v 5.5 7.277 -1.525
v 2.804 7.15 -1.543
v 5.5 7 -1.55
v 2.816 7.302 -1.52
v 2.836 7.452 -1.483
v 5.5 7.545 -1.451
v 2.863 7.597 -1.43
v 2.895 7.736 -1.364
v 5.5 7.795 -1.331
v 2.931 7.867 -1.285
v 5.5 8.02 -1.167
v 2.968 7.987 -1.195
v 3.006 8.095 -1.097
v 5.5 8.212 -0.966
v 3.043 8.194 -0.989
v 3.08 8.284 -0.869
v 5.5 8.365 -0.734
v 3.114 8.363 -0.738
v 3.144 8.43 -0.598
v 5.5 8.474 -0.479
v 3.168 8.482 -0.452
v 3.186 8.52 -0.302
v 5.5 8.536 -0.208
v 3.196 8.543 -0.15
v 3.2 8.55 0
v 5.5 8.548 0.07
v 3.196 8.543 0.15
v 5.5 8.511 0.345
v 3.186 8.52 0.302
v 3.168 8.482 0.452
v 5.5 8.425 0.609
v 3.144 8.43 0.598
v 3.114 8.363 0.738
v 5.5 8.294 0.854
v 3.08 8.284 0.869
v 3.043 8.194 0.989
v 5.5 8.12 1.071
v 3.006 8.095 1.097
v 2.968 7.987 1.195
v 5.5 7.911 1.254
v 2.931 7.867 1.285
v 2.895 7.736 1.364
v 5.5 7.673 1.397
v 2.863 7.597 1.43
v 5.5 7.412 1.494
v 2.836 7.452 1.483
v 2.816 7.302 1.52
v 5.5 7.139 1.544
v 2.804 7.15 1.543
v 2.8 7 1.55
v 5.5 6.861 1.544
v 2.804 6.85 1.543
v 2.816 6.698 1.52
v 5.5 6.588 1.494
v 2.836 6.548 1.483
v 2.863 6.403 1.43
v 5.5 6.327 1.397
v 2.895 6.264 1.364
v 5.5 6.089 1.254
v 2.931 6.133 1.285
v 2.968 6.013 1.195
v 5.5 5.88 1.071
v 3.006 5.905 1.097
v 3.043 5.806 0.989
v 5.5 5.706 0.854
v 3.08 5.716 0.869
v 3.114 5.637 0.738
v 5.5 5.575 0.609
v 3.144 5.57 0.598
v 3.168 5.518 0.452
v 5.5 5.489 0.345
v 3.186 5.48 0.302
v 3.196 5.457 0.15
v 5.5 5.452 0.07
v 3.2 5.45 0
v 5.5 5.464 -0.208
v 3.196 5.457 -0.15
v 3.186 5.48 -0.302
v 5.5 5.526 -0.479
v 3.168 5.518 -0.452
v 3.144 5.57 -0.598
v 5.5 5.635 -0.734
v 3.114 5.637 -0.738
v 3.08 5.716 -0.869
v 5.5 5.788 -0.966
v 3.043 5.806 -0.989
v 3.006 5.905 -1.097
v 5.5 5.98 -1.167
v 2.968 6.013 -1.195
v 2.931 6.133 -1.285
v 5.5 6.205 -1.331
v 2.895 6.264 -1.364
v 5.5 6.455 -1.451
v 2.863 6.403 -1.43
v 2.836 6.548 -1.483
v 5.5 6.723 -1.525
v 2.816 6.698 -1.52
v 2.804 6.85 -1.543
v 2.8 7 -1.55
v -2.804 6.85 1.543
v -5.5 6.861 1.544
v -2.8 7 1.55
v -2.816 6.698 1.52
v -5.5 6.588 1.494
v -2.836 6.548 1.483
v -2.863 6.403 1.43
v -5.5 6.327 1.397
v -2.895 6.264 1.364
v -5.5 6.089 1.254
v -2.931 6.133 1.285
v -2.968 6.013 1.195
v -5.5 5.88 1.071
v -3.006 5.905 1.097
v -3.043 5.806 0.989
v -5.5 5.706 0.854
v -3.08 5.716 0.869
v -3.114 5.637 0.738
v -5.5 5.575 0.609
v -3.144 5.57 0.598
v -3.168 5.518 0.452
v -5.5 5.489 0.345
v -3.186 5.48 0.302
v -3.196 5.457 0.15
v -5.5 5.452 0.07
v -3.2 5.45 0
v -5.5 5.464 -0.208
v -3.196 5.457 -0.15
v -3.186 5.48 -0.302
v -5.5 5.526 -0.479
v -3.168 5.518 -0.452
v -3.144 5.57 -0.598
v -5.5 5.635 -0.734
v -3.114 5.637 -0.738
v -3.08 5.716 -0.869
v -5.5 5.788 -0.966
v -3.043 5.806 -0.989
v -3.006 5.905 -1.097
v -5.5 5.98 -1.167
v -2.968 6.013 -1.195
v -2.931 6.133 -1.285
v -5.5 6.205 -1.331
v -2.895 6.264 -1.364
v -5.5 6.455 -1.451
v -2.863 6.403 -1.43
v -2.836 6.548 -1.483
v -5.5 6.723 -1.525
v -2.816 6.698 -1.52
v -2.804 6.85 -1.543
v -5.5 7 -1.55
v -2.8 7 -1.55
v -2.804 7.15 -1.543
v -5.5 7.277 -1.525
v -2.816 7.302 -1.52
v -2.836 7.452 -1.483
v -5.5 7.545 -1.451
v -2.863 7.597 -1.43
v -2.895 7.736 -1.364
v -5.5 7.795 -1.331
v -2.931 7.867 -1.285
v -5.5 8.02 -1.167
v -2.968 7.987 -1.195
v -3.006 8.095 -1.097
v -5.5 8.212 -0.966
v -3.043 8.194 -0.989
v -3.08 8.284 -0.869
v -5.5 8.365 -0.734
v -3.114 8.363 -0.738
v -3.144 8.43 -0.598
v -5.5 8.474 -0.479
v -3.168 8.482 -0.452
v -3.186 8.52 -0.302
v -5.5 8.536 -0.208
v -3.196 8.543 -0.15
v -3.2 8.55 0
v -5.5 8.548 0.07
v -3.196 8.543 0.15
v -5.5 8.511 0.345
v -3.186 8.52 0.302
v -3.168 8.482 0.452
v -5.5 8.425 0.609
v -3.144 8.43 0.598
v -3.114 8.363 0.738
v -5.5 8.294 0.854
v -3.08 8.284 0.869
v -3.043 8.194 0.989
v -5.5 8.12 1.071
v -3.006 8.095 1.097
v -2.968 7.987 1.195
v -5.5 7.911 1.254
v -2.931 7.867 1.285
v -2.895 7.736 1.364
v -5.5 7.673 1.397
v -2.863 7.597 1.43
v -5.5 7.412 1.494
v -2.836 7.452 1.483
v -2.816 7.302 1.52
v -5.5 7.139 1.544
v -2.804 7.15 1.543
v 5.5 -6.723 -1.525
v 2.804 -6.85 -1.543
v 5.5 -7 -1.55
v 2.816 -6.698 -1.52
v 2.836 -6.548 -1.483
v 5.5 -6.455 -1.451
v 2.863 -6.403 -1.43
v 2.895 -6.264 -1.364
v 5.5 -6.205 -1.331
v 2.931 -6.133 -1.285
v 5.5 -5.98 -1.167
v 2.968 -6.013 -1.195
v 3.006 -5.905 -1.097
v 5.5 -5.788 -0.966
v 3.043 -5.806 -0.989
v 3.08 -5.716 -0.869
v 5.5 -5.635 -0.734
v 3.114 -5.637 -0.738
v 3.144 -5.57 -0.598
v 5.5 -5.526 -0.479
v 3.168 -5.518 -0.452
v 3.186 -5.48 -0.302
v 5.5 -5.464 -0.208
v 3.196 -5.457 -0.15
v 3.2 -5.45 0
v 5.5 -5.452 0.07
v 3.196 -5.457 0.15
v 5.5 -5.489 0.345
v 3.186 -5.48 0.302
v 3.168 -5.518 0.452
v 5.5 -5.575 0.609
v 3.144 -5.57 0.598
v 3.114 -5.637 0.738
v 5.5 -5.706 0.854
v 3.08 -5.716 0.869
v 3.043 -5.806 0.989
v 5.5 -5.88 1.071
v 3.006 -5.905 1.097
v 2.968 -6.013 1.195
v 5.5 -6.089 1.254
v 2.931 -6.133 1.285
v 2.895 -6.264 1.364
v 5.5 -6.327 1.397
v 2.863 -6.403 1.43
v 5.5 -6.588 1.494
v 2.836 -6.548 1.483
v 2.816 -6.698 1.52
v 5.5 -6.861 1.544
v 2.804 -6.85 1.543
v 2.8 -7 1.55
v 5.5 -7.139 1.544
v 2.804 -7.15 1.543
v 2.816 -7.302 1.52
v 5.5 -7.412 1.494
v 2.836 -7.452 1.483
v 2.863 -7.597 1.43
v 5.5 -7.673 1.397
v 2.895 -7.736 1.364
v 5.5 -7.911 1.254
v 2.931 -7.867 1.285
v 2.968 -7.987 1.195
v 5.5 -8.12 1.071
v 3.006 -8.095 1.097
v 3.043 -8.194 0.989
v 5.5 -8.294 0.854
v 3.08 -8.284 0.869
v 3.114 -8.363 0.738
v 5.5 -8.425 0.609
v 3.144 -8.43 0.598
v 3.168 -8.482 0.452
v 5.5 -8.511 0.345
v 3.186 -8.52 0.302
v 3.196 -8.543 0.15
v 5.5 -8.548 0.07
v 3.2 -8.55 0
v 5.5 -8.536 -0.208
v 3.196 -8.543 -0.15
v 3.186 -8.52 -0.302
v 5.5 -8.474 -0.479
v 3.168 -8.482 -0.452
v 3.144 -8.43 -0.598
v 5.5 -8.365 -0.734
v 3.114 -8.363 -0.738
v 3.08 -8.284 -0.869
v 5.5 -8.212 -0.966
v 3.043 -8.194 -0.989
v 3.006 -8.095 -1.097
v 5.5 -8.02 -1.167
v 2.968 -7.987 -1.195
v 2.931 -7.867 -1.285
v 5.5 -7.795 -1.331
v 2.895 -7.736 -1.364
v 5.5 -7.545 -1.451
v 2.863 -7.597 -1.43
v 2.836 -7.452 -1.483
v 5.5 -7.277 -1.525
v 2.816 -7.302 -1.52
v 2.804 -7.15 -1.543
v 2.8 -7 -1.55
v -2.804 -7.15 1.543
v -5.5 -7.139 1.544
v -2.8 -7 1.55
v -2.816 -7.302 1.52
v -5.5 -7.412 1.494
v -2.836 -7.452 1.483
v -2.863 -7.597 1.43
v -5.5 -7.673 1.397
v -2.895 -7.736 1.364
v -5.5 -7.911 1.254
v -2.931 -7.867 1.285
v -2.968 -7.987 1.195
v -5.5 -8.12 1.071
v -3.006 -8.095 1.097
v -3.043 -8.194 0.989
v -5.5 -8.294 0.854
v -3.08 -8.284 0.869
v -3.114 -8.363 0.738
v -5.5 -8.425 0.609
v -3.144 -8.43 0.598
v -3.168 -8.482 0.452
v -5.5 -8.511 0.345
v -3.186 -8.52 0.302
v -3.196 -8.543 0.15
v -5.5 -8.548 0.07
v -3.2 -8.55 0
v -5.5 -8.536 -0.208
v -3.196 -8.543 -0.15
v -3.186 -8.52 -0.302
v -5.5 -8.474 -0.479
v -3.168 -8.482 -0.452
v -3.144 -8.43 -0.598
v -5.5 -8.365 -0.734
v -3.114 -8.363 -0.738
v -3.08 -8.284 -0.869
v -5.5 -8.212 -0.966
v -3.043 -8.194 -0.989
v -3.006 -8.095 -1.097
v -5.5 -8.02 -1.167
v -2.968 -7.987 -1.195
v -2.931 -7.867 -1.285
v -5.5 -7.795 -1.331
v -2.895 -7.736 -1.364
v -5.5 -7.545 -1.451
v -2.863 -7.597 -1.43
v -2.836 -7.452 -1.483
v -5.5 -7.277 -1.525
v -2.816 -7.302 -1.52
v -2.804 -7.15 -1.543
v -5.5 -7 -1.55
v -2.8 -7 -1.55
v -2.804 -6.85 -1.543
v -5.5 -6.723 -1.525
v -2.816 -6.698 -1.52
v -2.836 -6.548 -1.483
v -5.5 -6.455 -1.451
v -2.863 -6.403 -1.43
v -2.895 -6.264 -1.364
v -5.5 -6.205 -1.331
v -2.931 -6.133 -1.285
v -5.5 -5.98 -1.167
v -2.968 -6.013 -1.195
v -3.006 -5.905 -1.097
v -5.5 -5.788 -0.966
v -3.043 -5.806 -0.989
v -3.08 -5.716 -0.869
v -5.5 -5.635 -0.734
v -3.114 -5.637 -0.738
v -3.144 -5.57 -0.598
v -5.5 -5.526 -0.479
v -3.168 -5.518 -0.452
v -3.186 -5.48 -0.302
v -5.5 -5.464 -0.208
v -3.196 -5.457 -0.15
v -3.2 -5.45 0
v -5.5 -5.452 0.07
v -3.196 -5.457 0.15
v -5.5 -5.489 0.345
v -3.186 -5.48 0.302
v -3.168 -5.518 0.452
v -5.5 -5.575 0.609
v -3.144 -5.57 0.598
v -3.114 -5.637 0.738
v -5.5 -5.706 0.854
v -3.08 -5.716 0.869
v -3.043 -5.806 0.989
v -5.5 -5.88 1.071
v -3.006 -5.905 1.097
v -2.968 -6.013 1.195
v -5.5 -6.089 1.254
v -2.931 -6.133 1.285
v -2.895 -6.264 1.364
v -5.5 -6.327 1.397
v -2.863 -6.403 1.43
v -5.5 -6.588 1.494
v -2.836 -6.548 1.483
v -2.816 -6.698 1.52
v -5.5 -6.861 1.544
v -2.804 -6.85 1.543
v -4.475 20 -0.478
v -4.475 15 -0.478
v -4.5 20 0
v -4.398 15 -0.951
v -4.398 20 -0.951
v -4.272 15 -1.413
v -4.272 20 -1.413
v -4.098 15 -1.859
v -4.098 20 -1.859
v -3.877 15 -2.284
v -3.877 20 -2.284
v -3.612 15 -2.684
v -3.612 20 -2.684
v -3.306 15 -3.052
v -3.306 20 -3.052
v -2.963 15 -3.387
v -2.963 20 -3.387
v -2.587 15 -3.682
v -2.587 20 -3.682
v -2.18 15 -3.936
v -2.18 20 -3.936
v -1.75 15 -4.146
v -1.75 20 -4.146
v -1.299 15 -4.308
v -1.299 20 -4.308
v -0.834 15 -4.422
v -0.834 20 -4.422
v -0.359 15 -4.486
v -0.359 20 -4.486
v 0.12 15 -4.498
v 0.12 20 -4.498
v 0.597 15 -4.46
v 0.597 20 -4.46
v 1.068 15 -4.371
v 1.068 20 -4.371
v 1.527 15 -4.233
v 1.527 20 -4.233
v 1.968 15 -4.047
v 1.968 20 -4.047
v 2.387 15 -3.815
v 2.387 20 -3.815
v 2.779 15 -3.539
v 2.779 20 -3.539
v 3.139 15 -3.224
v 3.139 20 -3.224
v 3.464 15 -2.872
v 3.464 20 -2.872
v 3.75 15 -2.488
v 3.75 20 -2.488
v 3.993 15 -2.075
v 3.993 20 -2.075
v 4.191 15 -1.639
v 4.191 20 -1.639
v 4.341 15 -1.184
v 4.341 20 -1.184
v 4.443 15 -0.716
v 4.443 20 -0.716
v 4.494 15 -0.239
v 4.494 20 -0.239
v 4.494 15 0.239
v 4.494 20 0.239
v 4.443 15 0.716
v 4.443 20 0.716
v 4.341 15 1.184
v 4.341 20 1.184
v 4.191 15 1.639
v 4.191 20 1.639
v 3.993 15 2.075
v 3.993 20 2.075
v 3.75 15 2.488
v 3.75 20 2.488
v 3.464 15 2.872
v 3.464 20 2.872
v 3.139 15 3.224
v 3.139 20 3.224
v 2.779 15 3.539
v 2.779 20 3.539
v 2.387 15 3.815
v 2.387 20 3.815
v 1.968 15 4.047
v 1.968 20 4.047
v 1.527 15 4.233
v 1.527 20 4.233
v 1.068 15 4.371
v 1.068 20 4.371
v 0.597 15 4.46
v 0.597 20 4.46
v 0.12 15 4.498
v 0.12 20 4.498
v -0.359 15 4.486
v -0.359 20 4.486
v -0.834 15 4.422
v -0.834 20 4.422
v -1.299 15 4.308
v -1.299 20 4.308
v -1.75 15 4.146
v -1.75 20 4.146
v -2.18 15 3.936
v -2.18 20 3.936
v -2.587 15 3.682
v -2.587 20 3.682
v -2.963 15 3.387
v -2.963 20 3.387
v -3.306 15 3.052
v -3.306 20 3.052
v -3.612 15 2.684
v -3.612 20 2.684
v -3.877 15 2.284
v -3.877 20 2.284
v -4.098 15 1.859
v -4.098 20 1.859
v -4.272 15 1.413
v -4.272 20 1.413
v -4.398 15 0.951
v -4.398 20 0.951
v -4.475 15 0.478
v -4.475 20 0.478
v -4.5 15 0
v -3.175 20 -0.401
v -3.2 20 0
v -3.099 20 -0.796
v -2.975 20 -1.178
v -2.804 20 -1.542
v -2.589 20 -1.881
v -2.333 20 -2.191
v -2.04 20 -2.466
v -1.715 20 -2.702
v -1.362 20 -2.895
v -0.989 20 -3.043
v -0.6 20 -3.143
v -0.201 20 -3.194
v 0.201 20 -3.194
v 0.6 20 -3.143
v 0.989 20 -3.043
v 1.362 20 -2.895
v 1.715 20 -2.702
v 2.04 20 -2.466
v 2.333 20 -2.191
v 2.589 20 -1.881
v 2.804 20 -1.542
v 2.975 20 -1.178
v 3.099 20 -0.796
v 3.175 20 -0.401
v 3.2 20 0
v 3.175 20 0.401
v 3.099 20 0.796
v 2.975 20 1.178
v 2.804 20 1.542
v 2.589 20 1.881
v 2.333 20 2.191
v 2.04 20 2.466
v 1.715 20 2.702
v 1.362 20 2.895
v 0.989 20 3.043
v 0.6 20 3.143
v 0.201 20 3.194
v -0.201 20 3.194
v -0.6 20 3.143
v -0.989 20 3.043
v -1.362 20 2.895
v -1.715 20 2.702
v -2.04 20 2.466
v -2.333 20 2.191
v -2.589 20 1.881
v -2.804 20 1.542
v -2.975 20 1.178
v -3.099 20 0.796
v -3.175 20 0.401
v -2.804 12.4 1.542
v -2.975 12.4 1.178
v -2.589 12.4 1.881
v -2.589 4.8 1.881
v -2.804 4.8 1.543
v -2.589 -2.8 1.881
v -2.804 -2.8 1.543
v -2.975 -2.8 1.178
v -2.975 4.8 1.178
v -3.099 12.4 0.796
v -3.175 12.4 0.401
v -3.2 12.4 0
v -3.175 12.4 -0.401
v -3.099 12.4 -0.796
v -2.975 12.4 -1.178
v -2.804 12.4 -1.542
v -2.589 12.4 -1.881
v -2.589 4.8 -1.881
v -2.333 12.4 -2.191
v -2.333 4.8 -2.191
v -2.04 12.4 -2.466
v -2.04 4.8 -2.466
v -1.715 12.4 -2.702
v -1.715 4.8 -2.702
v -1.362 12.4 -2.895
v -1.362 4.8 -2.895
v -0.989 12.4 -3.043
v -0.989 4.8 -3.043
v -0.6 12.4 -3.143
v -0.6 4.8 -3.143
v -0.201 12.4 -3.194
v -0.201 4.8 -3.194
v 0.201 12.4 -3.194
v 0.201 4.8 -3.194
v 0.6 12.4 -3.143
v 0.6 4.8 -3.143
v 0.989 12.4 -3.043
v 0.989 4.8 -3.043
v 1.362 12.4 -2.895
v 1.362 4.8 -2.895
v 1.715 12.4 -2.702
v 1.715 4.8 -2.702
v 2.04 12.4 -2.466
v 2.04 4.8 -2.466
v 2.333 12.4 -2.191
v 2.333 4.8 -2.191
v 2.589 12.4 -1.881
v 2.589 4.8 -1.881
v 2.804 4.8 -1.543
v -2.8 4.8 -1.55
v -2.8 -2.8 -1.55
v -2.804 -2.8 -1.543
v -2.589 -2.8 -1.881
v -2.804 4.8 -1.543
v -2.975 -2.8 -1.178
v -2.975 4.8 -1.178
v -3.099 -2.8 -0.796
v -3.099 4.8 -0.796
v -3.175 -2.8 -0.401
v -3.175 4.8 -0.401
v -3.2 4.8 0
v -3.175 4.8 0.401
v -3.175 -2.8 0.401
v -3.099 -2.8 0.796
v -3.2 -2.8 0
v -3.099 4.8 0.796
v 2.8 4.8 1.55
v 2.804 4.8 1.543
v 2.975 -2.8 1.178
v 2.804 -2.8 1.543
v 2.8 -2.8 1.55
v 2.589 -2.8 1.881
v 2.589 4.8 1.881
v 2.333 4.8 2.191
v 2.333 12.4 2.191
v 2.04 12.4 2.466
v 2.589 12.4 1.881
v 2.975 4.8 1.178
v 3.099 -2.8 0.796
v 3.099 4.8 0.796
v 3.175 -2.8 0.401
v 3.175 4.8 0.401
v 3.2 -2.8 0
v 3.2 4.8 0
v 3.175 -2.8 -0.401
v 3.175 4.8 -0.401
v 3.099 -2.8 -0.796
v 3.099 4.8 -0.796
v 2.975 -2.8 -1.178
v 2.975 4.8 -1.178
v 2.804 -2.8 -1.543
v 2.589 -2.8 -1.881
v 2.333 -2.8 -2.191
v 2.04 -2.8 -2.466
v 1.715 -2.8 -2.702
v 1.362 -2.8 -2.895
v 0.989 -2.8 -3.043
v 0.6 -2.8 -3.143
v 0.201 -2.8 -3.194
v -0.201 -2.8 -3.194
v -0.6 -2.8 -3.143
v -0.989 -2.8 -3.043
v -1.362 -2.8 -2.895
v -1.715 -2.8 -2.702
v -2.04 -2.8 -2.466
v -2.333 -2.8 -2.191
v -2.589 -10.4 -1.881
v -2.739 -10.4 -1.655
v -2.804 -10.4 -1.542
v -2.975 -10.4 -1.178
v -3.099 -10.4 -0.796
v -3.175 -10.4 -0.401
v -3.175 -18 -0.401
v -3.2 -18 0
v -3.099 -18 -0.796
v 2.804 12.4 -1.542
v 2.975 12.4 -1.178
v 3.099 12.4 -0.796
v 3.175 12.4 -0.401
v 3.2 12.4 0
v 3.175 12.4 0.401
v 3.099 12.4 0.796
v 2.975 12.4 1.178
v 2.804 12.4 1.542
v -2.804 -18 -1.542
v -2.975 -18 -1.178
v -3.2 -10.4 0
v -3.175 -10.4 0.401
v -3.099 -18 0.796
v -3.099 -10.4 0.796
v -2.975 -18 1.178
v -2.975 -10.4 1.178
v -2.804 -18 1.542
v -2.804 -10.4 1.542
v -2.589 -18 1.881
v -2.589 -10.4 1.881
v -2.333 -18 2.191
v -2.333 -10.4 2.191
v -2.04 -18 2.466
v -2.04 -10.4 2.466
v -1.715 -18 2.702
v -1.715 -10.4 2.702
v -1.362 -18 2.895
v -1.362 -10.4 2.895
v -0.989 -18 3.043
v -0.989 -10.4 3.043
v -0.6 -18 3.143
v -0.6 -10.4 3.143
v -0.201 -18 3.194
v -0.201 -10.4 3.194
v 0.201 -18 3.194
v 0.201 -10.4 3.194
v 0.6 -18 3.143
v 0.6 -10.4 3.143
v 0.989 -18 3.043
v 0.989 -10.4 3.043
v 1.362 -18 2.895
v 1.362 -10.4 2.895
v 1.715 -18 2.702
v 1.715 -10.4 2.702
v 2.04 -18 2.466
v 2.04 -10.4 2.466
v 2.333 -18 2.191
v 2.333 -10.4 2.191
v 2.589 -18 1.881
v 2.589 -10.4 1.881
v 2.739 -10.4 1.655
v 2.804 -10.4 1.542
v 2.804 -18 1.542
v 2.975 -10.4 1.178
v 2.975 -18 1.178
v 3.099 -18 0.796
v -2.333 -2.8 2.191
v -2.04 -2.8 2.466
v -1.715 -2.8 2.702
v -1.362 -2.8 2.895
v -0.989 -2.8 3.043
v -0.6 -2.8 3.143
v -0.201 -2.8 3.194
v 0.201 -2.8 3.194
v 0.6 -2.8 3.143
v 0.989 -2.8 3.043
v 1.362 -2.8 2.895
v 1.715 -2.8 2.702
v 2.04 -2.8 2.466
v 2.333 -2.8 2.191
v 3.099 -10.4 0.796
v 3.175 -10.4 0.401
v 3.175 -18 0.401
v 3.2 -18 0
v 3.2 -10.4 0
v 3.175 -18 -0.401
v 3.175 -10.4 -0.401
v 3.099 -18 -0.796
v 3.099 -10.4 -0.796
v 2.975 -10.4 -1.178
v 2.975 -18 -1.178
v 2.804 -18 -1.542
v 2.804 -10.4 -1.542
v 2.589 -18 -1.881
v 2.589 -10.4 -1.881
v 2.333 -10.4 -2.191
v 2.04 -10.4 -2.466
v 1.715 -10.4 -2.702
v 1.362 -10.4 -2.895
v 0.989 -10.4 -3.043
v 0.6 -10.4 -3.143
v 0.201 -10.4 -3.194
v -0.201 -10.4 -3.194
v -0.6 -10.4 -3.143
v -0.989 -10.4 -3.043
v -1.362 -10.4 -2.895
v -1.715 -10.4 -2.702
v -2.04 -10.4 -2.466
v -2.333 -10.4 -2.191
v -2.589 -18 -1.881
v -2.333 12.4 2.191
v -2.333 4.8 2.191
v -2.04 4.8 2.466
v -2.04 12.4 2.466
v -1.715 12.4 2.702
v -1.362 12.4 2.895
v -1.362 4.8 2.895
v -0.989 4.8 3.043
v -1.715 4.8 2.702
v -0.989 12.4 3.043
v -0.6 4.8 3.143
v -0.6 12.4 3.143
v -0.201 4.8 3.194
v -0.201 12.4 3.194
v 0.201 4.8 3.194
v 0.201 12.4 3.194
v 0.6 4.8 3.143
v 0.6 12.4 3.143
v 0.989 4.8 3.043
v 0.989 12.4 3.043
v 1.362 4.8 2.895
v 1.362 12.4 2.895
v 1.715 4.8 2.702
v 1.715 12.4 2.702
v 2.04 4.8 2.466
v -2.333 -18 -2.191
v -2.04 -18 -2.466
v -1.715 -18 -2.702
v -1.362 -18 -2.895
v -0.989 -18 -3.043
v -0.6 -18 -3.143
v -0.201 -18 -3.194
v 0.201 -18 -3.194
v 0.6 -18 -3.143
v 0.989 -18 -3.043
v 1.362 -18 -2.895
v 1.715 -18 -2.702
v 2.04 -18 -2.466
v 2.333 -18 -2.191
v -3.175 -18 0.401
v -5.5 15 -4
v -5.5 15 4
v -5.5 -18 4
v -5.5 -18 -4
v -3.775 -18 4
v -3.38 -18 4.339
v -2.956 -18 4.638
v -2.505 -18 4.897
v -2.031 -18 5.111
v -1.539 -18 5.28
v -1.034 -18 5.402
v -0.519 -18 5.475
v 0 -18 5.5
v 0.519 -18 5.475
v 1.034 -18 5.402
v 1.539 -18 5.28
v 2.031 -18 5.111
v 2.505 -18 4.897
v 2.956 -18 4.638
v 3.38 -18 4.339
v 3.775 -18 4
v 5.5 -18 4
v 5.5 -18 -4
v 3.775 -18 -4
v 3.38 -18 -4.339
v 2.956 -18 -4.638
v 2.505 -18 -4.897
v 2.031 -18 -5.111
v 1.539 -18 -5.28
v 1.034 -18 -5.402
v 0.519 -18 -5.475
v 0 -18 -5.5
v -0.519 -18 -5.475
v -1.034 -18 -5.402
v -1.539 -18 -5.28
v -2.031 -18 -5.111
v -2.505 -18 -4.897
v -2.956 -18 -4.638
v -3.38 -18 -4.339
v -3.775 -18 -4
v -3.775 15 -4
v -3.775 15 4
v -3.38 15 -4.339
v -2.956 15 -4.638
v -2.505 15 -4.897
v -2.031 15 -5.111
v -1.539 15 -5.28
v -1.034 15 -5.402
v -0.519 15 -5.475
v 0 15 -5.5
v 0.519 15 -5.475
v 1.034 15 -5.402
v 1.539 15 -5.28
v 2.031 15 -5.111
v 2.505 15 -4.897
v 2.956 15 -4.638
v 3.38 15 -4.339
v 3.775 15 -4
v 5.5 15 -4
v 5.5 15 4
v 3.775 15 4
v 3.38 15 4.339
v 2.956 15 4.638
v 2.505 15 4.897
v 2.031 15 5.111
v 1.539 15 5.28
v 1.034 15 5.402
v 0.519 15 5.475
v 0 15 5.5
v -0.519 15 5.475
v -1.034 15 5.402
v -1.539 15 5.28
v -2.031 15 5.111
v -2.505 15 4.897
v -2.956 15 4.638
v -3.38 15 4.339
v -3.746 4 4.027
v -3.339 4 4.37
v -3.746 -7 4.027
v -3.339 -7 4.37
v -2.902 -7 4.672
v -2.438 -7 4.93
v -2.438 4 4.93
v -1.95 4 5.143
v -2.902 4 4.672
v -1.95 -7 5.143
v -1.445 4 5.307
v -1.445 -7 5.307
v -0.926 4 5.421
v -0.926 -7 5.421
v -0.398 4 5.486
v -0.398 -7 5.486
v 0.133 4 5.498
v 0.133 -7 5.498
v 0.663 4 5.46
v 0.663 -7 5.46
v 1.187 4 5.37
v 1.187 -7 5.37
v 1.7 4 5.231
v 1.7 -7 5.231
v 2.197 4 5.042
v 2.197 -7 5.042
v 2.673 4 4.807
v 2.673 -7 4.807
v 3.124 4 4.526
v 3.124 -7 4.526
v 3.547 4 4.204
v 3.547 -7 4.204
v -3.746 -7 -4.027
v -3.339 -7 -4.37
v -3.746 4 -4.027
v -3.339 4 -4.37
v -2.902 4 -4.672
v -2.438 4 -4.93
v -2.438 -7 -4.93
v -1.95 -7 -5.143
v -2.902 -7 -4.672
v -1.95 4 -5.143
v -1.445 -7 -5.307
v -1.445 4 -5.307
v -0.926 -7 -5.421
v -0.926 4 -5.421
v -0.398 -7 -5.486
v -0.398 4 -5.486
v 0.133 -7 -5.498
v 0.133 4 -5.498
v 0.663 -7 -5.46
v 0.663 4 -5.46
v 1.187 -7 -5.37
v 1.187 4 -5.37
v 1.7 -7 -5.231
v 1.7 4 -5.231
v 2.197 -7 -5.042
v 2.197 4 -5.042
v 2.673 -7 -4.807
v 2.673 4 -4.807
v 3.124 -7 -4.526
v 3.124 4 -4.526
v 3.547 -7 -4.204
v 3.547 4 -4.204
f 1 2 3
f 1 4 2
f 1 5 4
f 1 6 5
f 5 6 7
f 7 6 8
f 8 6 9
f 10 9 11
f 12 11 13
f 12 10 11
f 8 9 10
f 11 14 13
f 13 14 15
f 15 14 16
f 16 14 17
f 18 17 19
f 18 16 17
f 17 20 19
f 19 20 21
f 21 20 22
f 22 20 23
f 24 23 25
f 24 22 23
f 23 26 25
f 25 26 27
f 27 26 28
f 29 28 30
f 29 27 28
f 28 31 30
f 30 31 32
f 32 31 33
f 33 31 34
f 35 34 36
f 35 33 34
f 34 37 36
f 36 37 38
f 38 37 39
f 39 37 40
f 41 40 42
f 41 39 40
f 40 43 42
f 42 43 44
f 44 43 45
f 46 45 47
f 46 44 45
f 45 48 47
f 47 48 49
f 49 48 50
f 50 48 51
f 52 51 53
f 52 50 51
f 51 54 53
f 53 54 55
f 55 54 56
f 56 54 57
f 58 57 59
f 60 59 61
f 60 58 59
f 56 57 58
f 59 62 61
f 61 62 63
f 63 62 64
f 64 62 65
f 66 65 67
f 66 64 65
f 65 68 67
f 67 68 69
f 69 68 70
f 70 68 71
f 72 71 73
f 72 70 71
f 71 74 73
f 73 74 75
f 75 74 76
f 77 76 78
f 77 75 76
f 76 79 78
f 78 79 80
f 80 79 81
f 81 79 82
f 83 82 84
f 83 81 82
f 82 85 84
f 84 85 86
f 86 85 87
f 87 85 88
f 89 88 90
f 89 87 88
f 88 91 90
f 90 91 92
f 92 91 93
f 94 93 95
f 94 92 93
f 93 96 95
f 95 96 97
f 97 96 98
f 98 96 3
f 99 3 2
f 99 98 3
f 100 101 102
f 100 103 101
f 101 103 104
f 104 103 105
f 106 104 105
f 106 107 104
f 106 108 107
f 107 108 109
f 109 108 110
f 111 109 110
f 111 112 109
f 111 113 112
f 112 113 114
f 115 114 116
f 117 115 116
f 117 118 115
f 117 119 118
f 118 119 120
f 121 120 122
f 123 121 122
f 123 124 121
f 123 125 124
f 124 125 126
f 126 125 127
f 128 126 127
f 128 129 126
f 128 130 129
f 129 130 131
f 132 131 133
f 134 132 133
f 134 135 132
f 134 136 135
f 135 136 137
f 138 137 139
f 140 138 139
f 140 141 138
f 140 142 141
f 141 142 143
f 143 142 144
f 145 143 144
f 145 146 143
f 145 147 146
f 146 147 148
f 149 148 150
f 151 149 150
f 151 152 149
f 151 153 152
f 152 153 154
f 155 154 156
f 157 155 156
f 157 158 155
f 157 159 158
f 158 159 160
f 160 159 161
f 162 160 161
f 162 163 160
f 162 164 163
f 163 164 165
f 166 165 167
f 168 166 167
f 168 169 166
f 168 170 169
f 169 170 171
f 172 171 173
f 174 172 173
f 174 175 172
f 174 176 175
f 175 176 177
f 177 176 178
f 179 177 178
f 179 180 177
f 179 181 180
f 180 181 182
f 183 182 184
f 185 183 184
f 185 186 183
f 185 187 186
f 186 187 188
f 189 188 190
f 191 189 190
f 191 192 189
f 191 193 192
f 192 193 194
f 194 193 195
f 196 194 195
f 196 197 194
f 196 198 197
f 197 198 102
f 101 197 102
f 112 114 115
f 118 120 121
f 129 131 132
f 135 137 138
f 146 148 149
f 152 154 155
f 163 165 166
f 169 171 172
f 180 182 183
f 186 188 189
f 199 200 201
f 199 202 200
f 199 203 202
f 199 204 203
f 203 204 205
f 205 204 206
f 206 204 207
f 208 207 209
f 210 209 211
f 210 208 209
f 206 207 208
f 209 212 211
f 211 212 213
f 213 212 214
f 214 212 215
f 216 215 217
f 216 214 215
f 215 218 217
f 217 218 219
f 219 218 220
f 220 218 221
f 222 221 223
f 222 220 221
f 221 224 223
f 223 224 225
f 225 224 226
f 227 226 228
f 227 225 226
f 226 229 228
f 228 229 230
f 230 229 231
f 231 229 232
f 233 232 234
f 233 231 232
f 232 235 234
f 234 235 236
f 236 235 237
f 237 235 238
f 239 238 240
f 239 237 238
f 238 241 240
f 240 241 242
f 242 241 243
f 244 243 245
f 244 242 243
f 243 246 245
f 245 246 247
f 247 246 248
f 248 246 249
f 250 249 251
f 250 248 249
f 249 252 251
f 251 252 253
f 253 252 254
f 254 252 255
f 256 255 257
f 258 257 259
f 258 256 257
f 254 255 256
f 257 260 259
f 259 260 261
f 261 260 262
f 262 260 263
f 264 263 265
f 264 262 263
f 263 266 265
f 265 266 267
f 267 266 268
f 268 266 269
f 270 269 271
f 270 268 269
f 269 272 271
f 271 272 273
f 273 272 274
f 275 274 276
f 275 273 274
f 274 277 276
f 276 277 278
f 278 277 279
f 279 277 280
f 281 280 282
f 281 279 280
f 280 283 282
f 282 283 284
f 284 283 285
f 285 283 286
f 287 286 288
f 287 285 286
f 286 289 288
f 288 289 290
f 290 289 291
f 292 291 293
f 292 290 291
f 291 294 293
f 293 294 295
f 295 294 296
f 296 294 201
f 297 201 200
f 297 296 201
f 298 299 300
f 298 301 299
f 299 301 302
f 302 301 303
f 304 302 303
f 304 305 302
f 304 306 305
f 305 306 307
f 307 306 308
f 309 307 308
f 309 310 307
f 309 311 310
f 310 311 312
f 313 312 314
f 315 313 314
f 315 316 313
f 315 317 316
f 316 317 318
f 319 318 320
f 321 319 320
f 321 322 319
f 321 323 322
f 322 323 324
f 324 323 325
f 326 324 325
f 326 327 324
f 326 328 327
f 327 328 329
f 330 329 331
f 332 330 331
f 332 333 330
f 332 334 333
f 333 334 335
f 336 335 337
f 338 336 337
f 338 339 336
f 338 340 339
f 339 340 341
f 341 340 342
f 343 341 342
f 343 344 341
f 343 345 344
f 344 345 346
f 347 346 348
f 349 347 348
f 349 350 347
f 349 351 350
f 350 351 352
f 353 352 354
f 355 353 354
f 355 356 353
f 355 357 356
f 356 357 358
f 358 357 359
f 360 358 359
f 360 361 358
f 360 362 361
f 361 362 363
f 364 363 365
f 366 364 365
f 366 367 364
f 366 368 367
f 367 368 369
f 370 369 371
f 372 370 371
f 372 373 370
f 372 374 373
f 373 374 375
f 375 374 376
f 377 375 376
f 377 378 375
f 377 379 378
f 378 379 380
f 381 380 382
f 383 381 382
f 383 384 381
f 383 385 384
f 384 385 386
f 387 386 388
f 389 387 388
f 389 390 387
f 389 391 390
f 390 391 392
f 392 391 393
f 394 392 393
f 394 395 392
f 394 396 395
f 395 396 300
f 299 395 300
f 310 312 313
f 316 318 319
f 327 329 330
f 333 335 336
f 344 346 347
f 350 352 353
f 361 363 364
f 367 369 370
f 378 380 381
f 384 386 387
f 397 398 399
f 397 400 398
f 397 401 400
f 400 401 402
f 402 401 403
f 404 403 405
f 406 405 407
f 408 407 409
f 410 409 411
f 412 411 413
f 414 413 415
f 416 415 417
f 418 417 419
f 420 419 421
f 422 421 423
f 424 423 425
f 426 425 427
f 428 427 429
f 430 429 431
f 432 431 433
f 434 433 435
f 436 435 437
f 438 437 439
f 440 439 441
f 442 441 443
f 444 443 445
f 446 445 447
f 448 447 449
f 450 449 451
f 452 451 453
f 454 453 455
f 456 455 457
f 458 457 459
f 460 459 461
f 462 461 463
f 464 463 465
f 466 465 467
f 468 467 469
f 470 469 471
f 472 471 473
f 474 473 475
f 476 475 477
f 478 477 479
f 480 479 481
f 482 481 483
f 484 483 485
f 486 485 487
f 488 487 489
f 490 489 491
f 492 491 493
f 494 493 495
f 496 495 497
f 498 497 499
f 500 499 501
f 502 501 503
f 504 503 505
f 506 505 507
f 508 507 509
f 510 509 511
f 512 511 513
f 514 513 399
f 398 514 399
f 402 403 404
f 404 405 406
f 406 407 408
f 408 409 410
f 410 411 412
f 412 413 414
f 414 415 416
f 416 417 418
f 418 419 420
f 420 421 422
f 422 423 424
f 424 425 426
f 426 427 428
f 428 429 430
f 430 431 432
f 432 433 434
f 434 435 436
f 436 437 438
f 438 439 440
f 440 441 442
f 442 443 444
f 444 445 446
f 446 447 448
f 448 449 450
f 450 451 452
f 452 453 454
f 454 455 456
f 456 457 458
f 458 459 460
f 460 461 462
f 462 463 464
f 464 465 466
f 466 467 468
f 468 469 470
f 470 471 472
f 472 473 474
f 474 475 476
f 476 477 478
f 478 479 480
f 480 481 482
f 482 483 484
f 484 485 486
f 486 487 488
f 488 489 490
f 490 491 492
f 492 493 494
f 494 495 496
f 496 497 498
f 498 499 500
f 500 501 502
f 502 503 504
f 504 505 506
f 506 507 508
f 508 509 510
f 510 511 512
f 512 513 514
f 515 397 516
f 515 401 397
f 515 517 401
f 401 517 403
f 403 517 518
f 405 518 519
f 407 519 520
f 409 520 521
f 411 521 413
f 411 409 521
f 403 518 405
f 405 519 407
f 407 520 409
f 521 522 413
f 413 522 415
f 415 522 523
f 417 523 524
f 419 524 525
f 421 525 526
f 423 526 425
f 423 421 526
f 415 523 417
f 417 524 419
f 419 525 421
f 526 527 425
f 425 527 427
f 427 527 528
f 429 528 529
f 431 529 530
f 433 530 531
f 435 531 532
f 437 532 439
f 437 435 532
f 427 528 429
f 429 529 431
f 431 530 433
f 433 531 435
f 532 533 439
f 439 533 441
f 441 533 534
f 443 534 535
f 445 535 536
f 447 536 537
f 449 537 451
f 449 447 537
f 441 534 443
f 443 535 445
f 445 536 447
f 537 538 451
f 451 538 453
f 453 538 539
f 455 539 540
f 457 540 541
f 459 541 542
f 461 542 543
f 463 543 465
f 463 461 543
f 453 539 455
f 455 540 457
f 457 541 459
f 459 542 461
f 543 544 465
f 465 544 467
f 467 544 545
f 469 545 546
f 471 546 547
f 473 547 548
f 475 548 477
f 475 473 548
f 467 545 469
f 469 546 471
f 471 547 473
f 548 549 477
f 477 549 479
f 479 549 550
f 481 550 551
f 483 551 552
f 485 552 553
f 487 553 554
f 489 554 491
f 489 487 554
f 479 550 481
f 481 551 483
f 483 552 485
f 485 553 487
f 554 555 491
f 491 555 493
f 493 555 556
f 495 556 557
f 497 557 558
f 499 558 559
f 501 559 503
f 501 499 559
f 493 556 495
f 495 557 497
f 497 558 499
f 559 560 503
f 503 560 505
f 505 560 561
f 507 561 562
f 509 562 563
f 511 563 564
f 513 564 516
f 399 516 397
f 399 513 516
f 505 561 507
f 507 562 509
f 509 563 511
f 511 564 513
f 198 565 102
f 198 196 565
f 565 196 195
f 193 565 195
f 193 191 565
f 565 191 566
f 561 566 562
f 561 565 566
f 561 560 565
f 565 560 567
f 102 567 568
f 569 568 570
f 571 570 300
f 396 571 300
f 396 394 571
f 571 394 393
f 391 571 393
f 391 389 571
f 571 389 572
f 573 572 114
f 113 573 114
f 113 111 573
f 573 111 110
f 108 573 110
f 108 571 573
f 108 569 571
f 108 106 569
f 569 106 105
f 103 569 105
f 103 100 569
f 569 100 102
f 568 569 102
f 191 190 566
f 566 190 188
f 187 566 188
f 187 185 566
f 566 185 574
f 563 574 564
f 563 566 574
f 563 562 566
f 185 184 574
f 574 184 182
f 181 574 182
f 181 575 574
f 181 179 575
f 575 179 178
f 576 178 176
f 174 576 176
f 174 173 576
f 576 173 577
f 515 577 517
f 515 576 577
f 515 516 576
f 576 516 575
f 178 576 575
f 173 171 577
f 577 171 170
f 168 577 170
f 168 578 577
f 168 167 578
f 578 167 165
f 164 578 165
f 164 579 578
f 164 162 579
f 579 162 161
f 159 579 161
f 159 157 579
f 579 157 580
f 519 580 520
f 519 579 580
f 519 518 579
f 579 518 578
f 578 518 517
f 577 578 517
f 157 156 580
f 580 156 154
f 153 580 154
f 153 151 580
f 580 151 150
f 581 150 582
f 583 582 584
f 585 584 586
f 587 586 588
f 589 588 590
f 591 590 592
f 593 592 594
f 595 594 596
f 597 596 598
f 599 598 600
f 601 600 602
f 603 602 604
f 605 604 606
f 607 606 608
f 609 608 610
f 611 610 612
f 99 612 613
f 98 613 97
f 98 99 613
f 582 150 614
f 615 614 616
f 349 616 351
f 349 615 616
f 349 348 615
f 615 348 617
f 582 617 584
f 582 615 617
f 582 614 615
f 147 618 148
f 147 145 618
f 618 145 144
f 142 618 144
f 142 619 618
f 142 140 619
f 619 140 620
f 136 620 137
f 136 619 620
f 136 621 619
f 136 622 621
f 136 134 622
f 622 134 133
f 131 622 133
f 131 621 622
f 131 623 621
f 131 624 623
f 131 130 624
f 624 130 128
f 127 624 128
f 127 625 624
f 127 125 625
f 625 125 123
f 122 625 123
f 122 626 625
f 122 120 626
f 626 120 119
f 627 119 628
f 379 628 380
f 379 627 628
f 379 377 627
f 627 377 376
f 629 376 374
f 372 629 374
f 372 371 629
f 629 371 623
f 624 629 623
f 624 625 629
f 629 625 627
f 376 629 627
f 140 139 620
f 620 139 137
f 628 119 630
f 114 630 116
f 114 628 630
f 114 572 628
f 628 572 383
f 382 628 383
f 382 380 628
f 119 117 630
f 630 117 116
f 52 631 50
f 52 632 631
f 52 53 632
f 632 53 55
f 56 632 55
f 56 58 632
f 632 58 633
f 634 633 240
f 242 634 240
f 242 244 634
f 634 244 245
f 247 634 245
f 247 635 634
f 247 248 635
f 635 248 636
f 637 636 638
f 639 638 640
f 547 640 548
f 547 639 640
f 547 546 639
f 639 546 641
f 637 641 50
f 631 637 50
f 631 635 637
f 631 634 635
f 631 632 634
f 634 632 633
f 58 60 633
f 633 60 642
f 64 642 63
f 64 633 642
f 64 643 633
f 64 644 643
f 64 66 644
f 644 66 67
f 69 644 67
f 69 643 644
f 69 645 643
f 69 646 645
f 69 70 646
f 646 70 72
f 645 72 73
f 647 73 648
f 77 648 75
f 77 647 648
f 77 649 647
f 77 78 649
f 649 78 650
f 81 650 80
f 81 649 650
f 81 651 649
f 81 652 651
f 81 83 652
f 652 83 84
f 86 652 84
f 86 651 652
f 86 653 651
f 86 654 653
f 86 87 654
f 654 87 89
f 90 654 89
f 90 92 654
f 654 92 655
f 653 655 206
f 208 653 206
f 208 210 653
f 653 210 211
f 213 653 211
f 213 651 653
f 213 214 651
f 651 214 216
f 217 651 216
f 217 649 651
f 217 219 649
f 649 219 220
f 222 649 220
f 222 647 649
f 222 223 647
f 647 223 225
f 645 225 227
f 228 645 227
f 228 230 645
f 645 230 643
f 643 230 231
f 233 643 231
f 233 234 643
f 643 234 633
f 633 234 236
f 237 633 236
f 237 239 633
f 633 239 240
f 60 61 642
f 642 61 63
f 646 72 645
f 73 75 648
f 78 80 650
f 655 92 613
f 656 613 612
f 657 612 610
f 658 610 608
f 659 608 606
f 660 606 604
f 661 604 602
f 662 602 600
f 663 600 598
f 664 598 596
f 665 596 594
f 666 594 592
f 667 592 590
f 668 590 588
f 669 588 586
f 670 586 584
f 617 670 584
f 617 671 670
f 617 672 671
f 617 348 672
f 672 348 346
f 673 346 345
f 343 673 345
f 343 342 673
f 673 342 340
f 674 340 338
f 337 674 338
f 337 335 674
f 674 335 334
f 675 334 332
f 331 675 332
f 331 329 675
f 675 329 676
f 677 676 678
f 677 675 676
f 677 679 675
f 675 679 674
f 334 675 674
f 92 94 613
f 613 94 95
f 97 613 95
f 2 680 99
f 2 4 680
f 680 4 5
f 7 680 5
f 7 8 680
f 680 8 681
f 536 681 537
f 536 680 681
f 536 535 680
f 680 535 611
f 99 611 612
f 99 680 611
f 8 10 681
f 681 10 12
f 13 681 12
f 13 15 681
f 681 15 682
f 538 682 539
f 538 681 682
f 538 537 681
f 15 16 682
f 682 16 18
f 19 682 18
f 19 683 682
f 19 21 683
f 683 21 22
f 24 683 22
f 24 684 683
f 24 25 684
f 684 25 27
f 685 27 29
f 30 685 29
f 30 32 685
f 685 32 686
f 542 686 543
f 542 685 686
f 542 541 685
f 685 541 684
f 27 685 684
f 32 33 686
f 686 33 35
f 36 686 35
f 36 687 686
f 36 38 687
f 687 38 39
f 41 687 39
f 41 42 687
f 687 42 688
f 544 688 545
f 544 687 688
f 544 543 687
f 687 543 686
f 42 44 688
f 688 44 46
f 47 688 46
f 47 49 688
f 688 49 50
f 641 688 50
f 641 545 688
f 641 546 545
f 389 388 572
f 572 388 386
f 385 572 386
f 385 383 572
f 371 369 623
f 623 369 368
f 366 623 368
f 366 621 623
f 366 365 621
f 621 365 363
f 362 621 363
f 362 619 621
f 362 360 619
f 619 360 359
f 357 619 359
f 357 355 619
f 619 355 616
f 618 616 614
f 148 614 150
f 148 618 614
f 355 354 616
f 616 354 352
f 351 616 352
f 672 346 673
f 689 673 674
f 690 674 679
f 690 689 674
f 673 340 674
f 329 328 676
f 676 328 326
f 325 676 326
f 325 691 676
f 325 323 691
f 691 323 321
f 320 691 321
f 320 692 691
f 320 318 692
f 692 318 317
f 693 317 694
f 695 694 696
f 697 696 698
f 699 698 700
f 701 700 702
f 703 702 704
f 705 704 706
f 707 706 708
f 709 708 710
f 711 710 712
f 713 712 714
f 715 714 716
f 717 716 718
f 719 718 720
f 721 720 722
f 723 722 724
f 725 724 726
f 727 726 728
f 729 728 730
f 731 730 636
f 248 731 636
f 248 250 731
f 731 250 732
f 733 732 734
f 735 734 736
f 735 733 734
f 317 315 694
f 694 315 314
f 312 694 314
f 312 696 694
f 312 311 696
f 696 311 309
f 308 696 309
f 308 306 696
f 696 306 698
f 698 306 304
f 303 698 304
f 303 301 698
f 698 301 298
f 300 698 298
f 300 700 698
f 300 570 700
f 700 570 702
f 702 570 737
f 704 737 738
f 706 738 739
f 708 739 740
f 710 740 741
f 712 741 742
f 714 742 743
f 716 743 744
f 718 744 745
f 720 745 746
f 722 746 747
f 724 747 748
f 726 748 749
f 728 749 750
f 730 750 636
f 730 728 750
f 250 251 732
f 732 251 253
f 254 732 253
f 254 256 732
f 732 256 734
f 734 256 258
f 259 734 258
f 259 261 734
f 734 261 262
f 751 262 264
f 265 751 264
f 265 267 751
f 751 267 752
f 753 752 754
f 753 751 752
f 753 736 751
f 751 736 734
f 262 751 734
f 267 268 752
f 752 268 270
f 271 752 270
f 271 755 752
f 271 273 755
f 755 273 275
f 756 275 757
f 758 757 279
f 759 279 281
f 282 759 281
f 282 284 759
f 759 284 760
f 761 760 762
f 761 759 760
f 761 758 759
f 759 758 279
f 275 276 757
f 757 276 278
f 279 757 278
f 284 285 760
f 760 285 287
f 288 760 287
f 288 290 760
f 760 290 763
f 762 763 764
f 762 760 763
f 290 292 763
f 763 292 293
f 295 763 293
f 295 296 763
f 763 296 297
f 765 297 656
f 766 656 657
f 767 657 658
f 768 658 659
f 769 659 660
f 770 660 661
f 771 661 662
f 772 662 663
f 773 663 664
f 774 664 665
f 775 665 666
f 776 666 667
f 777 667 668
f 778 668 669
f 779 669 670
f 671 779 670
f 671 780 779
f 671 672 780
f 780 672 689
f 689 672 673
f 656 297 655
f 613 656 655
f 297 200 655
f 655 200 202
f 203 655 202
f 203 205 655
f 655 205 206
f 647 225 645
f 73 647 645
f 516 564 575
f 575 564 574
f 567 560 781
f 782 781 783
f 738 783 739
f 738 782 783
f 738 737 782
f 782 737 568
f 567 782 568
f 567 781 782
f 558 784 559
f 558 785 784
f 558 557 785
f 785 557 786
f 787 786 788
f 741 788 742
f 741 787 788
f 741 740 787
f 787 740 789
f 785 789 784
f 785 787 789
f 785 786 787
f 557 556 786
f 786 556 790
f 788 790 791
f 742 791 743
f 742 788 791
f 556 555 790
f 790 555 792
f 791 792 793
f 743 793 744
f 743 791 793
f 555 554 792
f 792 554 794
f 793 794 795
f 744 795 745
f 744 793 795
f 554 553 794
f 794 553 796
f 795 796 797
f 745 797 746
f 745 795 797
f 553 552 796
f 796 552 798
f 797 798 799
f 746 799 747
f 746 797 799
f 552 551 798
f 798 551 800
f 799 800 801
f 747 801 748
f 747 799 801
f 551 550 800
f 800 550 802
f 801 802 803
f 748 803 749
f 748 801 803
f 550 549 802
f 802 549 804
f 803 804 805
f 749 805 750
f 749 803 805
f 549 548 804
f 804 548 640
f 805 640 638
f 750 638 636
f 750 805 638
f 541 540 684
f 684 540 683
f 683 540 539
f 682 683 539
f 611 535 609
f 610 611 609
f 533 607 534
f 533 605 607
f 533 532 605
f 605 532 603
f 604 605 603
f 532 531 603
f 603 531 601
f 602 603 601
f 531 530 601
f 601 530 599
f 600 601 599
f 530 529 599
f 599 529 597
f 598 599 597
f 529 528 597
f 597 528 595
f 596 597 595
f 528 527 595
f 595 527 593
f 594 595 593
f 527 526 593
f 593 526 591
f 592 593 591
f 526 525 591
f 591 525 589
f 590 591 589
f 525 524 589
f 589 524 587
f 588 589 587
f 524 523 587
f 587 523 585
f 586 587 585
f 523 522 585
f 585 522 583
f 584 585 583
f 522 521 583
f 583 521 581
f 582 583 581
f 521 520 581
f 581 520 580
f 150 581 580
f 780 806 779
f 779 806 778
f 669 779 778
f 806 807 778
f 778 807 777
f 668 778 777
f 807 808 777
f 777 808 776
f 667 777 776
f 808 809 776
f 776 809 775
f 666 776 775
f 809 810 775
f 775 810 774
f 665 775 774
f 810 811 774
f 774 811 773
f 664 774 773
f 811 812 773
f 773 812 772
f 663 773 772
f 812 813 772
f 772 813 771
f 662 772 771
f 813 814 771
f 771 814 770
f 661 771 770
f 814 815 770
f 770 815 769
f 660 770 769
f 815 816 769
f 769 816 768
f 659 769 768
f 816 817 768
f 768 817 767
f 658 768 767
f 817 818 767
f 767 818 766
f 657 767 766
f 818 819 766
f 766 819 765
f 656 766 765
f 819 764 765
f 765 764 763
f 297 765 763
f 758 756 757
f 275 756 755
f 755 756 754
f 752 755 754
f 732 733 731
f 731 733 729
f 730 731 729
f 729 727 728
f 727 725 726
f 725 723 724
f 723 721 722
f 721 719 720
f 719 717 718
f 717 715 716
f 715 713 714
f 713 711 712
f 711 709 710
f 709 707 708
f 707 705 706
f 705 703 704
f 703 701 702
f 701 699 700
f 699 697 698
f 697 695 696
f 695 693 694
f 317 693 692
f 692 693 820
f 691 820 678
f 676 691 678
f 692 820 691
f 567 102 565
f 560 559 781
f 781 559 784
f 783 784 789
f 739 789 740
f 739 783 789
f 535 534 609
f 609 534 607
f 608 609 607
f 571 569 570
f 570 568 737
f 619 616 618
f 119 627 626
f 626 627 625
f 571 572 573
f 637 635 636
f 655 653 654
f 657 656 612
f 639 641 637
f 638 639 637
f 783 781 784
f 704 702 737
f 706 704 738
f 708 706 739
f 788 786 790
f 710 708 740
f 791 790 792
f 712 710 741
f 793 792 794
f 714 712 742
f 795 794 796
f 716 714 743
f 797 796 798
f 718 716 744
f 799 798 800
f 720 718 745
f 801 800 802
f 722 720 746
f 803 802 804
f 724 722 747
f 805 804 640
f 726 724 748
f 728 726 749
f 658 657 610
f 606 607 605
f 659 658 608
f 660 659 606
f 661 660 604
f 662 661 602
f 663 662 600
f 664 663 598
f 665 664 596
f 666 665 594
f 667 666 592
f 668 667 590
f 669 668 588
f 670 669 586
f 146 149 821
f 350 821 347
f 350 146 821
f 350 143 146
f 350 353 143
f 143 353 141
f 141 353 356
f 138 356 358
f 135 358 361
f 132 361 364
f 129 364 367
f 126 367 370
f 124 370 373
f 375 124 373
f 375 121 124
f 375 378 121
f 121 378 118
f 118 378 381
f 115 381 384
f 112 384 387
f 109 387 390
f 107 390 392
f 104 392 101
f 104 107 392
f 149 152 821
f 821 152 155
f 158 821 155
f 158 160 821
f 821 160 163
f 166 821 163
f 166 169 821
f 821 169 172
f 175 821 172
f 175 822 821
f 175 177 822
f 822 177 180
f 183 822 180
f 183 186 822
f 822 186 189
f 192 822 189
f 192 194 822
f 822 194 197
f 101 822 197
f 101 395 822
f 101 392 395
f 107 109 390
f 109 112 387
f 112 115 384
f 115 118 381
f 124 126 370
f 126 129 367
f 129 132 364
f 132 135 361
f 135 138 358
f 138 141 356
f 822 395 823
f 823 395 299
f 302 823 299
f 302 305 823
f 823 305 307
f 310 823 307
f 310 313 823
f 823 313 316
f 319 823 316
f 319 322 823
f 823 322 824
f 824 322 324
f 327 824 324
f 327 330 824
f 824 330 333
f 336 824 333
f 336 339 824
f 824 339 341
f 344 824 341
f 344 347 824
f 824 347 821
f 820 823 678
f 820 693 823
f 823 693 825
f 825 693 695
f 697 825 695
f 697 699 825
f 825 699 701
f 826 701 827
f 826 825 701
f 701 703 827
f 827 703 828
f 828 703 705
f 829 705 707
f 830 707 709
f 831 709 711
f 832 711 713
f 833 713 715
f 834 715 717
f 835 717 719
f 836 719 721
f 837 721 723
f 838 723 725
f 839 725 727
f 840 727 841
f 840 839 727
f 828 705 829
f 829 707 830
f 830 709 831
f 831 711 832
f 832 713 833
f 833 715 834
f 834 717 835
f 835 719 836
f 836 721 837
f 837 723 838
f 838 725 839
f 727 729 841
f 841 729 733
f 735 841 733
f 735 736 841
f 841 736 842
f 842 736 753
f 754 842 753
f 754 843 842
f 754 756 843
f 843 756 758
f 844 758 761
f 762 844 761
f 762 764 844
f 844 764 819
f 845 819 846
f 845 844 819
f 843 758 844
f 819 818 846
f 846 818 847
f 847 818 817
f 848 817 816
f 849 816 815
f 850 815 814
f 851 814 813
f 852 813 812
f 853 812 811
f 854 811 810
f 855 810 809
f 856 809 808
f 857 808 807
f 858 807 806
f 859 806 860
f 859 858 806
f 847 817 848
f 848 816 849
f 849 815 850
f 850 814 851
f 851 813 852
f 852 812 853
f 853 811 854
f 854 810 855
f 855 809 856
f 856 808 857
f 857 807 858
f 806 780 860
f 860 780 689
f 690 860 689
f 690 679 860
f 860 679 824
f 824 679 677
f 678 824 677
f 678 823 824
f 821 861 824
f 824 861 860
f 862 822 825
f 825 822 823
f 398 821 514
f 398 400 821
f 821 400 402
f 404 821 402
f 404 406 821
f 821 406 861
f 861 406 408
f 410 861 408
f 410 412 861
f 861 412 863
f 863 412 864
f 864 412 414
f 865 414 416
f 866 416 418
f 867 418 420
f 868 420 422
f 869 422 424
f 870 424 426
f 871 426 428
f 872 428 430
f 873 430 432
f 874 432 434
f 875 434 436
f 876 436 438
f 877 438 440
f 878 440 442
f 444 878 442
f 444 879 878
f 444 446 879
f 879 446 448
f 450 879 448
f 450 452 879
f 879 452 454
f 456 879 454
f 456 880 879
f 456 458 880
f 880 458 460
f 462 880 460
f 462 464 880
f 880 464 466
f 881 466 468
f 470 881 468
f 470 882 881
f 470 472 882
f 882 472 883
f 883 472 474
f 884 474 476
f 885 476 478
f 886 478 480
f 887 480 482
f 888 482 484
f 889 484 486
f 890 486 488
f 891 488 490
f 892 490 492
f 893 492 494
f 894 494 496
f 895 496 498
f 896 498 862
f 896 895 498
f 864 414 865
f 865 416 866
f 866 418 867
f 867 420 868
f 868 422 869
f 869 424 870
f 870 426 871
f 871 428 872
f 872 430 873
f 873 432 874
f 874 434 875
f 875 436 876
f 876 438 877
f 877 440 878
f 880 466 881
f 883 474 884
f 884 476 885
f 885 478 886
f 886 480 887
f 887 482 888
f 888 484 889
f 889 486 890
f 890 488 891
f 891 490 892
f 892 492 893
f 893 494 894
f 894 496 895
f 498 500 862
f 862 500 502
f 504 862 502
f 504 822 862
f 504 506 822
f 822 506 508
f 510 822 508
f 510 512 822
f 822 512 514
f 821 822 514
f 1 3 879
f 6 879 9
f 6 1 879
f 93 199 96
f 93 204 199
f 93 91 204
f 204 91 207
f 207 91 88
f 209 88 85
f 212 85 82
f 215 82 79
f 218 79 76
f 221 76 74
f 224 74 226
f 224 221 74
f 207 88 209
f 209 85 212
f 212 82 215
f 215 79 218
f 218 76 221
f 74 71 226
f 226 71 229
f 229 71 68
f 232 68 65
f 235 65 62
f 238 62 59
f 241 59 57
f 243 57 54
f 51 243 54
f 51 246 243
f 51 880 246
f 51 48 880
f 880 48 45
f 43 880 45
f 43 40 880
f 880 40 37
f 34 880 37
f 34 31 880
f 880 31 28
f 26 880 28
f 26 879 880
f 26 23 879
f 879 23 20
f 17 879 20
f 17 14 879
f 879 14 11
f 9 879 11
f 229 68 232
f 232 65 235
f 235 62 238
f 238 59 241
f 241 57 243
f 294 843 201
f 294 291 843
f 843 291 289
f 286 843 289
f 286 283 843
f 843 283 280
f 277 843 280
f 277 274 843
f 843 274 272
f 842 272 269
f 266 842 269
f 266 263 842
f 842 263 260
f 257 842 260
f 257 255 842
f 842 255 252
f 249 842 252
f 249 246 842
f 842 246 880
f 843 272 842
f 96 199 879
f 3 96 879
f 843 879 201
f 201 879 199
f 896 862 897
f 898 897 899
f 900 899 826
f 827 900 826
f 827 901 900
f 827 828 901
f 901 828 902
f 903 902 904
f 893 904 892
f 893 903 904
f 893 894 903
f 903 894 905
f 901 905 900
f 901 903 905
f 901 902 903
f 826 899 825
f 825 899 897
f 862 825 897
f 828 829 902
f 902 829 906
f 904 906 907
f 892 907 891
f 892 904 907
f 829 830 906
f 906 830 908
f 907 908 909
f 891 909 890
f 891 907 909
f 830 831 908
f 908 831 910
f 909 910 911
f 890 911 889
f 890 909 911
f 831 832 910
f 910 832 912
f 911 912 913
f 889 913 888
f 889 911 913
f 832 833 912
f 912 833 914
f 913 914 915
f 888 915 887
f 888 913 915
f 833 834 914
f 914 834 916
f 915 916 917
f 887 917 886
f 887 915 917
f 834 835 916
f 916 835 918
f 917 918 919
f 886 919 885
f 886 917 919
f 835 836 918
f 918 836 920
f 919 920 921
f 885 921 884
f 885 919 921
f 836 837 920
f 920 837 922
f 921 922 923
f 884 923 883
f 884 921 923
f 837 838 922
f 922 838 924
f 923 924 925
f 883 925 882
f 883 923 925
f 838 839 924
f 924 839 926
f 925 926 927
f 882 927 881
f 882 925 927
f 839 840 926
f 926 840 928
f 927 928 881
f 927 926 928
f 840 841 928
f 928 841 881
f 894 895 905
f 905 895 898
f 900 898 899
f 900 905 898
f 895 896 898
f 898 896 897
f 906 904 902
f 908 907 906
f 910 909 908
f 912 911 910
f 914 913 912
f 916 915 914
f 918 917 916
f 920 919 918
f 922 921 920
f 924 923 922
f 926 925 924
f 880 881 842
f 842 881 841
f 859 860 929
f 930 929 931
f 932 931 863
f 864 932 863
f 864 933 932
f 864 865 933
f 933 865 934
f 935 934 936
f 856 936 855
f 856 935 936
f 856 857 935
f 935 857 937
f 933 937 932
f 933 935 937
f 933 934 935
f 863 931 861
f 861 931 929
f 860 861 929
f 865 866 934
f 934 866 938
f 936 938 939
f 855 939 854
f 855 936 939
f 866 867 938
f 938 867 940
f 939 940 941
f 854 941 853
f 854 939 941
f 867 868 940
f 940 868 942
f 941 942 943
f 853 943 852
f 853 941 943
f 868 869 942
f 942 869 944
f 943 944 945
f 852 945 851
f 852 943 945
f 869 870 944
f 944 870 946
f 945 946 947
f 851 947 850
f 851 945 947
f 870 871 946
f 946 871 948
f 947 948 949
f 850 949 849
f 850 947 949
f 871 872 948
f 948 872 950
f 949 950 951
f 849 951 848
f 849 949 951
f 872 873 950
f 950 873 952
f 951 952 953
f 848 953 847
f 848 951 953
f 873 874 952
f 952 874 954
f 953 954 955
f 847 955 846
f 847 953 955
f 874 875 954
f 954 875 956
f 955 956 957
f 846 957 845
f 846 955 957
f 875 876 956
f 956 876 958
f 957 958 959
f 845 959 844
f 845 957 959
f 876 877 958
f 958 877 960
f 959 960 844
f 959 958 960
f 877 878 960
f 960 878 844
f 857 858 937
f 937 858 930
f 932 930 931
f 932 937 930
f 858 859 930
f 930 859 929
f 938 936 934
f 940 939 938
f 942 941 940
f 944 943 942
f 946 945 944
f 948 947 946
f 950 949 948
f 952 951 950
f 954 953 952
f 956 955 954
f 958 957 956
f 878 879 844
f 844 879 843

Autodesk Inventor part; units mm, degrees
ref_plane "YZ Plane" through (0, 0, 0) normal (1, 0, 0) x (0, 1, 0)
ref_plane "XZ Plane" through (0, 0, 0) normal (0, 1, 0) x (-1, 0, 0)
ref_plane "XY Plane" through (0, 0, 0) normal (0, 0, 1) x (1, 0, 0)
sketch "Sketch1" plane through (0, 0, 0) normal (0, 1, 0) x (-1, 0, 0)
  circle A0 centre (0, 0) radius 3.2
  circle A1 centre (0, 0) radius 5.5
  line L0 (0, 0) -> (0, -3.2)
  line L1 (0, 0) -> (0, 4)
  line L2 (-3.7749, 4) -> (-5.5, 4)
  line L3 (-5.5, 4) -> (-5.5, -4)
  line L4 (-5.5, -4) -> (-3.7749, -4)
  line L5 (0, -4) -> (0, 0)
  line L6 (3.7749, -4) -> (5.5, -4)
  line L7 (5.5, -4) -> (5.5, 4)
  line L8 (5.5, 4) -> (3.7749, 4)
  circle A2 centre (0, 0) radius 4.5
  dimension "d0" = 6.4
  dimension "d1" = 11
  dimension "d13" = 4
  dimension "d14" = 8
  dimension "d15" = 8
  dimension "d18" = 9
extrude "Extrusion3" add sketch "Sketch1" along normal blind 15 and the other way blind 18 contours A1 | L7 L6 A1 | A1 L8 L7 | A1 L3 L2 | L4 L3 A1 | A2
extrude "Extrusion4" add sketch "Sketch1" along normal blind 20 contours A2
sketch "Sketch3" plane through (5.5, -18, -4) normal (1, 0, 0) x (0, 0, -1)
  line L0 (0, 0) -> (0, 33) projected
  line L1 (0, 15) -> (-4, 15)
  line L2 (-4, 18) -> (-4, 11)
  line L3 (-4, 18) -> (-4, 25)
  circle A0 centre (-4, 25) radius 1.55
  circle A1 centre (-4, 11) radius 1.55
  dimension "d21" = 7
  dimension "d22" = 7
  dimension "d23" = 3.1
  dimension "d24" = 3.1
extrude "Extrusion5" cut sketch "Sketch3" against normal blind 20
properties part number "shaft_to_shaft_coupler"
